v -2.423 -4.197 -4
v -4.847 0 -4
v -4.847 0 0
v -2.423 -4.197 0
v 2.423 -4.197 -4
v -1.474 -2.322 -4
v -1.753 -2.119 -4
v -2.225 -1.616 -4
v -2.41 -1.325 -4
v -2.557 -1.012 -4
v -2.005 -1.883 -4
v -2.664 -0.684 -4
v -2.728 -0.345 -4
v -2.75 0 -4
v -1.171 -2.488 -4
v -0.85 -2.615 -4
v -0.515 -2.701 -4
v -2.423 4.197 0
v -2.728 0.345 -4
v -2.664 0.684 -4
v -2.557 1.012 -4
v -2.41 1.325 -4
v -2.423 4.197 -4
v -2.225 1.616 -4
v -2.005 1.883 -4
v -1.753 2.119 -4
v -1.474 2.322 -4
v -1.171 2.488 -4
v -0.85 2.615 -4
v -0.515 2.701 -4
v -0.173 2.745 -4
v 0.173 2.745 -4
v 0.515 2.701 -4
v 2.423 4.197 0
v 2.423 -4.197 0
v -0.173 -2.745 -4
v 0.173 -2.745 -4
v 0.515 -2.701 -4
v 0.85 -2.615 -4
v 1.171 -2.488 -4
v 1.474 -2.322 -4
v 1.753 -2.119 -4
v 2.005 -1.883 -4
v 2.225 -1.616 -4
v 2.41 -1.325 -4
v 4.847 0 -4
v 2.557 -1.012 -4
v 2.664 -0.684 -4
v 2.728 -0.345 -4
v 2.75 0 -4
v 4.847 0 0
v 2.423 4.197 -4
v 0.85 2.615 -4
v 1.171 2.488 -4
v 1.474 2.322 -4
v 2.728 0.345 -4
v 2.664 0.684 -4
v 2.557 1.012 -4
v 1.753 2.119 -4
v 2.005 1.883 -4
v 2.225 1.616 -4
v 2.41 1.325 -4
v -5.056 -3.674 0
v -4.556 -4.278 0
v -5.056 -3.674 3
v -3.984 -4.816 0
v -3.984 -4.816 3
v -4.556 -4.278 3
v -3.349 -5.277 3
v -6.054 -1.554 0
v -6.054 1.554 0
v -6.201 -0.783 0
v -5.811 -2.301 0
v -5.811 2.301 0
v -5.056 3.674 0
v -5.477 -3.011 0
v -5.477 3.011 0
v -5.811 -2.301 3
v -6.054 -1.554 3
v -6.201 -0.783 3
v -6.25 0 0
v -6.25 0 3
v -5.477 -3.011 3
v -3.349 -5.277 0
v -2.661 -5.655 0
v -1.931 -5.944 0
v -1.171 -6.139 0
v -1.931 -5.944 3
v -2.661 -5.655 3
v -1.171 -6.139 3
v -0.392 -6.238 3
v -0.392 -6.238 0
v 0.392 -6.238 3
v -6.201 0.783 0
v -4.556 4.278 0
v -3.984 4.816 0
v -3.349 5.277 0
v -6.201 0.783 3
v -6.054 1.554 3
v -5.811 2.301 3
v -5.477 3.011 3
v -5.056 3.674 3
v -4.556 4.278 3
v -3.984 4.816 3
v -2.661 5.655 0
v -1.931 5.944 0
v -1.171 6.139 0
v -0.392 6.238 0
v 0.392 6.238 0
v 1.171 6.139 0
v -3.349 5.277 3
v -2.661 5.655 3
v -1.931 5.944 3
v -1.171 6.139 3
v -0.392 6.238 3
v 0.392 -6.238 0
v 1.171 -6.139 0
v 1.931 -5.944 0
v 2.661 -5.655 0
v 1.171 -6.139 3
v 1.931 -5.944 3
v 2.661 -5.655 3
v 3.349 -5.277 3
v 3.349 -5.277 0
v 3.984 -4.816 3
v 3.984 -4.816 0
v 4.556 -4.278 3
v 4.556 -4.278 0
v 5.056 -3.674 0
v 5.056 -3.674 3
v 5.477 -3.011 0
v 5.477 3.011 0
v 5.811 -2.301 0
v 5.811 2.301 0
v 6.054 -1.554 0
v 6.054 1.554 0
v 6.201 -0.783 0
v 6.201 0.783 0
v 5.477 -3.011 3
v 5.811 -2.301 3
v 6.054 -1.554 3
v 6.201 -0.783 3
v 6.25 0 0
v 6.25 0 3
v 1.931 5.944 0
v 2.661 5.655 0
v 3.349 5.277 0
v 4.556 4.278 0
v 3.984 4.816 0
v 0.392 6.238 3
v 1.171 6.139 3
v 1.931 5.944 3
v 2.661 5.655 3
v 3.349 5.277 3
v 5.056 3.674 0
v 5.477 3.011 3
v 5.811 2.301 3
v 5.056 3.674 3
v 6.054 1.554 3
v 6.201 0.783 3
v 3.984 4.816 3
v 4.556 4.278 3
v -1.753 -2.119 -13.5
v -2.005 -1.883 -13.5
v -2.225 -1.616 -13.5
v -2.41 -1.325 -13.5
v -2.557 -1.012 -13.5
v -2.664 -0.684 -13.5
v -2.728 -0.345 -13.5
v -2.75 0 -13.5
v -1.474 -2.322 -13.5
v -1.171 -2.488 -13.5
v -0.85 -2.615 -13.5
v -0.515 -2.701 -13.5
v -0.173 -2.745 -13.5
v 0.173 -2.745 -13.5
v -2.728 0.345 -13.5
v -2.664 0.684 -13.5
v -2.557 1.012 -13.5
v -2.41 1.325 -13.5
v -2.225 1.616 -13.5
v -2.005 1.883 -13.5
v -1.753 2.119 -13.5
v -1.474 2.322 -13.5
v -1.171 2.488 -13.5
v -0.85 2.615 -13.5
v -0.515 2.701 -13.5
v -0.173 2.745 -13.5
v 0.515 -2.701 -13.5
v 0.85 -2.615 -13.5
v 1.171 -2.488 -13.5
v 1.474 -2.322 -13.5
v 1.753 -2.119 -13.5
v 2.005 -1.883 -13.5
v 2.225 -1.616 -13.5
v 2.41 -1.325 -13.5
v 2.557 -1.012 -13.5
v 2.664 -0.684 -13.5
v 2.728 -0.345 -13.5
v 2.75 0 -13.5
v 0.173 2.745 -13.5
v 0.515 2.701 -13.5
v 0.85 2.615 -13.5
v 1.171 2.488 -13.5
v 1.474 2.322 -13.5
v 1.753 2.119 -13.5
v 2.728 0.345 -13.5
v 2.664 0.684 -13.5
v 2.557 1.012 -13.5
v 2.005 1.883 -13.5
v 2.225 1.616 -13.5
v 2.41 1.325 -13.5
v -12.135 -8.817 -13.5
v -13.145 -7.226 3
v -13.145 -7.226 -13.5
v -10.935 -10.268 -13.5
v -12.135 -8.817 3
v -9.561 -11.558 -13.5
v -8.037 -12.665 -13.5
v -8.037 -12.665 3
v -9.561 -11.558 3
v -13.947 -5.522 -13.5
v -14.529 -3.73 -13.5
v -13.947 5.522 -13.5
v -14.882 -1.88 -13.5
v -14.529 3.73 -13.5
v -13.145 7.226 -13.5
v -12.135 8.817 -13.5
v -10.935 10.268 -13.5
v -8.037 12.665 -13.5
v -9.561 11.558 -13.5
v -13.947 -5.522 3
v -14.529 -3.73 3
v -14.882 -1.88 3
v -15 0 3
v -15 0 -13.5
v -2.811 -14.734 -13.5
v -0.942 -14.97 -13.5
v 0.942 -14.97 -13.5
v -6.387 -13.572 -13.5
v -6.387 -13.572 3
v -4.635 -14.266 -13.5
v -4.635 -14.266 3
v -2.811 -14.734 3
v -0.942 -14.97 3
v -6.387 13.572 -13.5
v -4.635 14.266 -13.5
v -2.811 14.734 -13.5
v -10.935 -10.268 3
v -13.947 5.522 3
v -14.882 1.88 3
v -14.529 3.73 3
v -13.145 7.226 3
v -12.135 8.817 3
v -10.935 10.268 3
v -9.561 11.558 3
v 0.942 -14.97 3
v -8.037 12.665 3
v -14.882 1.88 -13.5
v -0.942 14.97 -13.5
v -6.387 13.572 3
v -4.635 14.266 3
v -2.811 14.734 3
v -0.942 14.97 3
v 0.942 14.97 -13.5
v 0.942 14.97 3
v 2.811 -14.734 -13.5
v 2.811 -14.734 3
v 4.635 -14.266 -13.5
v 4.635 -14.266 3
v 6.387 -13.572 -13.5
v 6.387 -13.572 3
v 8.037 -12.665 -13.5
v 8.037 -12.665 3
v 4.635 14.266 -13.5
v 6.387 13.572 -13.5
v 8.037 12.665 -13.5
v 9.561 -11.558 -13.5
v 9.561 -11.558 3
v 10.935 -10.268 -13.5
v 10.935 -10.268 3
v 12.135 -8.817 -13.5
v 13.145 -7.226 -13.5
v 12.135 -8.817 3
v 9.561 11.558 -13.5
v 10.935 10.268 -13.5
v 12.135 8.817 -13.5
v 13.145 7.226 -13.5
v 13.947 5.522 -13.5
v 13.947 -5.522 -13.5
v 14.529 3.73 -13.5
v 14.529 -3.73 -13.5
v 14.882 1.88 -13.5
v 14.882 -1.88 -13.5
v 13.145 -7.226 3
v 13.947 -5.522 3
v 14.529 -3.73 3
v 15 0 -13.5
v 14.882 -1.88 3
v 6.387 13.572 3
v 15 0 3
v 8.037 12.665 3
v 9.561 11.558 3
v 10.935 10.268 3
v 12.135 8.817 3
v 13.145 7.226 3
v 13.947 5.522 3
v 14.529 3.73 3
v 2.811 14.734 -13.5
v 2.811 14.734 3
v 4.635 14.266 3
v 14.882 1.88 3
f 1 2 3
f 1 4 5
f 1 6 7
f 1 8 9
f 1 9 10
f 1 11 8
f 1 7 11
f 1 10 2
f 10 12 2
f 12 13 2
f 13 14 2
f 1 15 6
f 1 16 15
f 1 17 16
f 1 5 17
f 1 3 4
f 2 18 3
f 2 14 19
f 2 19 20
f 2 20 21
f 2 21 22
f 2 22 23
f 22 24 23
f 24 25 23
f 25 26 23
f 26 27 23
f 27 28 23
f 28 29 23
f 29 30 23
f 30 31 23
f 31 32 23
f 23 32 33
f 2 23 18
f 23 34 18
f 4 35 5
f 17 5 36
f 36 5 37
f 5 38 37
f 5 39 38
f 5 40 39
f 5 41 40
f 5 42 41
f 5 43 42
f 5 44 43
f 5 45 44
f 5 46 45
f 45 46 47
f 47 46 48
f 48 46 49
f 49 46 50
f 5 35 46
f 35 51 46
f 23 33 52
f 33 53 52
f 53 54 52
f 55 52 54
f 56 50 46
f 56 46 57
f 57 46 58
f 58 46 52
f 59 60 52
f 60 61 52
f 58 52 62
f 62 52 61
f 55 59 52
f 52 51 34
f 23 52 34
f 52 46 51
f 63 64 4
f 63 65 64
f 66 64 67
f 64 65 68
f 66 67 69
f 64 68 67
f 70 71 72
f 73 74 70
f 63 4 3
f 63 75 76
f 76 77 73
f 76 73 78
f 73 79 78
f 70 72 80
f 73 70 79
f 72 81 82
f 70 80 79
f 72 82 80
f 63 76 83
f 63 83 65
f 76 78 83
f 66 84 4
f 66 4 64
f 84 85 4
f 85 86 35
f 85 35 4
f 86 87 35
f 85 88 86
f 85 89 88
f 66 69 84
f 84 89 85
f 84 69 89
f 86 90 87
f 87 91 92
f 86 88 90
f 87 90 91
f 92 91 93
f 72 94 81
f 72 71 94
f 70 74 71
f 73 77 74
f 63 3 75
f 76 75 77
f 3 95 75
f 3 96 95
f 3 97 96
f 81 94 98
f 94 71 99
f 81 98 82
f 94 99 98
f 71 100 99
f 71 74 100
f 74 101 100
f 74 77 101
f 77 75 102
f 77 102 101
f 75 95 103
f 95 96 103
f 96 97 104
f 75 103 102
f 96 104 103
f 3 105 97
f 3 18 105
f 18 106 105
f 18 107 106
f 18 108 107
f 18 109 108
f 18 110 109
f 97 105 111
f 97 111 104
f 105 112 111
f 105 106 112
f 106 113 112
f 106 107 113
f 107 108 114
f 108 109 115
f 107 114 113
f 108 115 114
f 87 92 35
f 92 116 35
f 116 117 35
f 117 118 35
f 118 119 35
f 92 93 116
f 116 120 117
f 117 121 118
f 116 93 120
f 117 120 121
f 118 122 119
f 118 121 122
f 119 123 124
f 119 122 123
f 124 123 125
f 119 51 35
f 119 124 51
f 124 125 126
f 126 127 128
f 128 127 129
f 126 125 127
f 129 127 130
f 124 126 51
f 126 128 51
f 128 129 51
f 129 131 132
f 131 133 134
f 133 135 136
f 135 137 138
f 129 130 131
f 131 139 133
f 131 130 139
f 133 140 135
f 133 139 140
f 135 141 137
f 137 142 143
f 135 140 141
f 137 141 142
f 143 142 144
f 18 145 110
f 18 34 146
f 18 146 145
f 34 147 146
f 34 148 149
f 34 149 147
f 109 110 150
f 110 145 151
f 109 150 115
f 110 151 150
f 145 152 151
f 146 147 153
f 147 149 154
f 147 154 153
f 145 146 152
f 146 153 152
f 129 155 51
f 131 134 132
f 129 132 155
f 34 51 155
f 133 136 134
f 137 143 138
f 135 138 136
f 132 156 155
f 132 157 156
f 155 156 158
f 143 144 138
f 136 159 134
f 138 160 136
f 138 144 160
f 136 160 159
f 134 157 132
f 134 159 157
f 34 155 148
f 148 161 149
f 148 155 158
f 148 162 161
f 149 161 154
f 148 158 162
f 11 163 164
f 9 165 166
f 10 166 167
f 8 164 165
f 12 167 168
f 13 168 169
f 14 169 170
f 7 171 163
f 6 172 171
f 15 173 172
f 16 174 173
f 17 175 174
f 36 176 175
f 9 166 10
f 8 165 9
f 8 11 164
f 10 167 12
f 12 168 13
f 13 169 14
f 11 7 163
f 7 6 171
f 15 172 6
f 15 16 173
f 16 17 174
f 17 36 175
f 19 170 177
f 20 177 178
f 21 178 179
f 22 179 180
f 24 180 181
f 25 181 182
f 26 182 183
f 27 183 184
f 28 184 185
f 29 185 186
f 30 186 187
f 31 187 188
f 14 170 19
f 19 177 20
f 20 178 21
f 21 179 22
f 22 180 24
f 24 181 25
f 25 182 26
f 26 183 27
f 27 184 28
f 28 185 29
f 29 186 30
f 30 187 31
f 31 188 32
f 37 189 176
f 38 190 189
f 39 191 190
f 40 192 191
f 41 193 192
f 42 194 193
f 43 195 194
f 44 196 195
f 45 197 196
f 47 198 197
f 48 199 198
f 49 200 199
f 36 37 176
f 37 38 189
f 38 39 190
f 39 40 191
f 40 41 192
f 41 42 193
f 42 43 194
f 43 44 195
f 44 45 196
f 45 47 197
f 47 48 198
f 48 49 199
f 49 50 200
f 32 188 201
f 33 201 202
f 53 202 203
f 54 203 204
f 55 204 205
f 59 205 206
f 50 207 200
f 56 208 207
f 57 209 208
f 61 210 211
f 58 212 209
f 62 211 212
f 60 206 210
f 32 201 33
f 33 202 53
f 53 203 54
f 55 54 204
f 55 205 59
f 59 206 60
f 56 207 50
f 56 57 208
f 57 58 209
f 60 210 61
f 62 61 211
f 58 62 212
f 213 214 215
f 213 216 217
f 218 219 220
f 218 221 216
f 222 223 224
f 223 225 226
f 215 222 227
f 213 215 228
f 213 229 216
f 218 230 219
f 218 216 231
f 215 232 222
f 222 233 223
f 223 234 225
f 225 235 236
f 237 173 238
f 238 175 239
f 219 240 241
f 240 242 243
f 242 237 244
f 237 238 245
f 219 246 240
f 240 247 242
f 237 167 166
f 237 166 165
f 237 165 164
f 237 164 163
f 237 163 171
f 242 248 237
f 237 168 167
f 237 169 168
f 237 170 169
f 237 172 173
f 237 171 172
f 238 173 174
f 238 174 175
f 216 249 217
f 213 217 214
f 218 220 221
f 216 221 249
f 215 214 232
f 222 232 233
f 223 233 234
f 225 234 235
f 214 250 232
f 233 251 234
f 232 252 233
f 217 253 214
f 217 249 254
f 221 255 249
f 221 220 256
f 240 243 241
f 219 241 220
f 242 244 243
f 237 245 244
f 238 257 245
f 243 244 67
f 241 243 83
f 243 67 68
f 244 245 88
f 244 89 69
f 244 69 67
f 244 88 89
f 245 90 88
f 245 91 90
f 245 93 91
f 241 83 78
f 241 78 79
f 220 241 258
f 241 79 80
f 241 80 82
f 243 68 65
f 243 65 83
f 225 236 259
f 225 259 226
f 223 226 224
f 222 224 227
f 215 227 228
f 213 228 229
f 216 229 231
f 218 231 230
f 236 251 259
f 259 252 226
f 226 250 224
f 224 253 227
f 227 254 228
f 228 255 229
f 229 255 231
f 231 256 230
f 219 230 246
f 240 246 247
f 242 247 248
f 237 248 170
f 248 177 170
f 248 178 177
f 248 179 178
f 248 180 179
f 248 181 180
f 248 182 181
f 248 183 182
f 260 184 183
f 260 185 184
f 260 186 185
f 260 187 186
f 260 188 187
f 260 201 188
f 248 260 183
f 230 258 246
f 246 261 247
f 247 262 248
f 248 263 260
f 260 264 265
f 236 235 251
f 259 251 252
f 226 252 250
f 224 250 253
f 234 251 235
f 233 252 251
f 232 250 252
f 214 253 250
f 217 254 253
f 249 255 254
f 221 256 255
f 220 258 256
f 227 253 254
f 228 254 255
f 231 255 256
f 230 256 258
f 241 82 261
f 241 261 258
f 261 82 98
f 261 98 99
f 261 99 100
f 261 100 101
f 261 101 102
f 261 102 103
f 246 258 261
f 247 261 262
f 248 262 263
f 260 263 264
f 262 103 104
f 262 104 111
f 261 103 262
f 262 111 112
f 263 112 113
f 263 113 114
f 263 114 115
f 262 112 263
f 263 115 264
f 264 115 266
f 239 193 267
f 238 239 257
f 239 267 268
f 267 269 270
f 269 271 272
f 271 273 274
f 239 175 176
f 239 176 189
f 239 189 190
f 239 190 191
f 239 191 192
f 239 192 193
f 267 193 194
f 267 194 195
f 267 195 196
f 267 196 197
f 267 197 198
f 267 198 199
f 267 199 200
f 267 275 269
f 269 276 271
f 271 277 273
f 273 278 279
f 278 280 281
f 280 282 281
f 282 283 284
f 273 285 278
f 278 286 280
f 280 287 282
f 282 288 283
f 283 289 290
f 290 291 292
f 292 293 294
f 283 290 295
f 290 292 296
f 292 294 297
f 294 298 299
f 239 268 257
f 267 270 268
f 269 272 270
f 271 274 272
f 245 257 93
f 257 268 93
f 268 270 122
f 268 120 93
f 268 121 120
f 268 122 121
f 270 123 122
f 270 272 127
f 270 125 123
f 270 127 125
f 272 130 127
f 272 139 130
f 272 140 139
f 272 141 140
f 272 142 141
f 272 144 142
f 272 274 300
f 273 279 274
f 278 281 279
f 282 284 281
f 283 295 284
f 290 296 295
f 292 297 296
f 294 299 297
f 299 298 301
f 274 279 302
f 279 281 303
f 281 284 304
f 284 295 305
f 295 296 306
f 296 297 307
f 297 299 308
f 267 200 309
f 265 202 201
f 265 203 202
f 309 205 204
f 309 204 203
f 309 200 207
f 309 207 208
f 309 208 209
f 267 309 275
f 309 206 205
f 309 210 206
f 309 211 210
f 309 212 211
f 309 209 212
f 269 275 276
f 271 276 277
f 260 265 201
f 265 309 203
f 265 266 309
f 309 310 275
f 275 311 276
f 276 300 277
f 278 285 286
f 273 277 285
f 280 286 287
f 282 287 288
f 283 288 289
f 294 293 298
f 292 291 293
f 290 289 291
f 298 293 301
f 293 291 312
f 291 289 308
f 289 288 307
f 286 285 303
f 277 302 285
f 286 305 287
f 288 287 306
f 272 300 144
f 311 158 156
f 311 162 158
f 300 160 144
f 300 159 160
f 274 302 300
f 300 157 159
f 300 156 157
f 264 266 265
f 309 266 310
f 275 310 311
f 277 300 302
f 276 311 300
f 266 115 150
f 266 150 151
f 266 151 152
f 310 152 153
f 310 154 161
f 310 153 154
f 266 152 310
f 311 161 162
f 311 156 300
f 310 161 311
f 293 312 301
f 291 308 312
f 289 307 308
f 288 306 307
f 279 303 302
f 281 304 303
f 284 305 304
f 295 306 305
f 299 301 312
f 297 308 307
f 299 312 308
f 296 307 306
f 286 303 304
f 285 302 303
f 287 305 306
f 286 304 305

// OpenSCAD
$fn = 50;

difference() {
	union() {
		translate(v = [0, 0, -13.5]) {
			cylinder(h = 16.5, r = 15.0);
		}
	}
	union() {
		translate(v = [0, 0, 0]) {
			rotate(a = [0, 0, 0]) {
				difference() {
					union() {
						translate(v = [0, 0, -4]) {
							linear_extrude(height = 4) {
								polygon(points = [[4.8468, 0.0], [2.4234000000000004, 4.197451927062417], [-2.423399999999999, 4.197451927062417], [-4.8468, 5.935618106107392e-16], [-2.423400000000002, -4.197451927062416], [2.423399999999997, -4.197451927062419]]);
							}
						}
					}
					union();
				}
			}
		}
		#cylinder(h = 3, r = 6.25);
		#translate(v = [0, 0, -100.0]) {
			cylinder(h = 200, r = 2.75);
		}
	}
}
